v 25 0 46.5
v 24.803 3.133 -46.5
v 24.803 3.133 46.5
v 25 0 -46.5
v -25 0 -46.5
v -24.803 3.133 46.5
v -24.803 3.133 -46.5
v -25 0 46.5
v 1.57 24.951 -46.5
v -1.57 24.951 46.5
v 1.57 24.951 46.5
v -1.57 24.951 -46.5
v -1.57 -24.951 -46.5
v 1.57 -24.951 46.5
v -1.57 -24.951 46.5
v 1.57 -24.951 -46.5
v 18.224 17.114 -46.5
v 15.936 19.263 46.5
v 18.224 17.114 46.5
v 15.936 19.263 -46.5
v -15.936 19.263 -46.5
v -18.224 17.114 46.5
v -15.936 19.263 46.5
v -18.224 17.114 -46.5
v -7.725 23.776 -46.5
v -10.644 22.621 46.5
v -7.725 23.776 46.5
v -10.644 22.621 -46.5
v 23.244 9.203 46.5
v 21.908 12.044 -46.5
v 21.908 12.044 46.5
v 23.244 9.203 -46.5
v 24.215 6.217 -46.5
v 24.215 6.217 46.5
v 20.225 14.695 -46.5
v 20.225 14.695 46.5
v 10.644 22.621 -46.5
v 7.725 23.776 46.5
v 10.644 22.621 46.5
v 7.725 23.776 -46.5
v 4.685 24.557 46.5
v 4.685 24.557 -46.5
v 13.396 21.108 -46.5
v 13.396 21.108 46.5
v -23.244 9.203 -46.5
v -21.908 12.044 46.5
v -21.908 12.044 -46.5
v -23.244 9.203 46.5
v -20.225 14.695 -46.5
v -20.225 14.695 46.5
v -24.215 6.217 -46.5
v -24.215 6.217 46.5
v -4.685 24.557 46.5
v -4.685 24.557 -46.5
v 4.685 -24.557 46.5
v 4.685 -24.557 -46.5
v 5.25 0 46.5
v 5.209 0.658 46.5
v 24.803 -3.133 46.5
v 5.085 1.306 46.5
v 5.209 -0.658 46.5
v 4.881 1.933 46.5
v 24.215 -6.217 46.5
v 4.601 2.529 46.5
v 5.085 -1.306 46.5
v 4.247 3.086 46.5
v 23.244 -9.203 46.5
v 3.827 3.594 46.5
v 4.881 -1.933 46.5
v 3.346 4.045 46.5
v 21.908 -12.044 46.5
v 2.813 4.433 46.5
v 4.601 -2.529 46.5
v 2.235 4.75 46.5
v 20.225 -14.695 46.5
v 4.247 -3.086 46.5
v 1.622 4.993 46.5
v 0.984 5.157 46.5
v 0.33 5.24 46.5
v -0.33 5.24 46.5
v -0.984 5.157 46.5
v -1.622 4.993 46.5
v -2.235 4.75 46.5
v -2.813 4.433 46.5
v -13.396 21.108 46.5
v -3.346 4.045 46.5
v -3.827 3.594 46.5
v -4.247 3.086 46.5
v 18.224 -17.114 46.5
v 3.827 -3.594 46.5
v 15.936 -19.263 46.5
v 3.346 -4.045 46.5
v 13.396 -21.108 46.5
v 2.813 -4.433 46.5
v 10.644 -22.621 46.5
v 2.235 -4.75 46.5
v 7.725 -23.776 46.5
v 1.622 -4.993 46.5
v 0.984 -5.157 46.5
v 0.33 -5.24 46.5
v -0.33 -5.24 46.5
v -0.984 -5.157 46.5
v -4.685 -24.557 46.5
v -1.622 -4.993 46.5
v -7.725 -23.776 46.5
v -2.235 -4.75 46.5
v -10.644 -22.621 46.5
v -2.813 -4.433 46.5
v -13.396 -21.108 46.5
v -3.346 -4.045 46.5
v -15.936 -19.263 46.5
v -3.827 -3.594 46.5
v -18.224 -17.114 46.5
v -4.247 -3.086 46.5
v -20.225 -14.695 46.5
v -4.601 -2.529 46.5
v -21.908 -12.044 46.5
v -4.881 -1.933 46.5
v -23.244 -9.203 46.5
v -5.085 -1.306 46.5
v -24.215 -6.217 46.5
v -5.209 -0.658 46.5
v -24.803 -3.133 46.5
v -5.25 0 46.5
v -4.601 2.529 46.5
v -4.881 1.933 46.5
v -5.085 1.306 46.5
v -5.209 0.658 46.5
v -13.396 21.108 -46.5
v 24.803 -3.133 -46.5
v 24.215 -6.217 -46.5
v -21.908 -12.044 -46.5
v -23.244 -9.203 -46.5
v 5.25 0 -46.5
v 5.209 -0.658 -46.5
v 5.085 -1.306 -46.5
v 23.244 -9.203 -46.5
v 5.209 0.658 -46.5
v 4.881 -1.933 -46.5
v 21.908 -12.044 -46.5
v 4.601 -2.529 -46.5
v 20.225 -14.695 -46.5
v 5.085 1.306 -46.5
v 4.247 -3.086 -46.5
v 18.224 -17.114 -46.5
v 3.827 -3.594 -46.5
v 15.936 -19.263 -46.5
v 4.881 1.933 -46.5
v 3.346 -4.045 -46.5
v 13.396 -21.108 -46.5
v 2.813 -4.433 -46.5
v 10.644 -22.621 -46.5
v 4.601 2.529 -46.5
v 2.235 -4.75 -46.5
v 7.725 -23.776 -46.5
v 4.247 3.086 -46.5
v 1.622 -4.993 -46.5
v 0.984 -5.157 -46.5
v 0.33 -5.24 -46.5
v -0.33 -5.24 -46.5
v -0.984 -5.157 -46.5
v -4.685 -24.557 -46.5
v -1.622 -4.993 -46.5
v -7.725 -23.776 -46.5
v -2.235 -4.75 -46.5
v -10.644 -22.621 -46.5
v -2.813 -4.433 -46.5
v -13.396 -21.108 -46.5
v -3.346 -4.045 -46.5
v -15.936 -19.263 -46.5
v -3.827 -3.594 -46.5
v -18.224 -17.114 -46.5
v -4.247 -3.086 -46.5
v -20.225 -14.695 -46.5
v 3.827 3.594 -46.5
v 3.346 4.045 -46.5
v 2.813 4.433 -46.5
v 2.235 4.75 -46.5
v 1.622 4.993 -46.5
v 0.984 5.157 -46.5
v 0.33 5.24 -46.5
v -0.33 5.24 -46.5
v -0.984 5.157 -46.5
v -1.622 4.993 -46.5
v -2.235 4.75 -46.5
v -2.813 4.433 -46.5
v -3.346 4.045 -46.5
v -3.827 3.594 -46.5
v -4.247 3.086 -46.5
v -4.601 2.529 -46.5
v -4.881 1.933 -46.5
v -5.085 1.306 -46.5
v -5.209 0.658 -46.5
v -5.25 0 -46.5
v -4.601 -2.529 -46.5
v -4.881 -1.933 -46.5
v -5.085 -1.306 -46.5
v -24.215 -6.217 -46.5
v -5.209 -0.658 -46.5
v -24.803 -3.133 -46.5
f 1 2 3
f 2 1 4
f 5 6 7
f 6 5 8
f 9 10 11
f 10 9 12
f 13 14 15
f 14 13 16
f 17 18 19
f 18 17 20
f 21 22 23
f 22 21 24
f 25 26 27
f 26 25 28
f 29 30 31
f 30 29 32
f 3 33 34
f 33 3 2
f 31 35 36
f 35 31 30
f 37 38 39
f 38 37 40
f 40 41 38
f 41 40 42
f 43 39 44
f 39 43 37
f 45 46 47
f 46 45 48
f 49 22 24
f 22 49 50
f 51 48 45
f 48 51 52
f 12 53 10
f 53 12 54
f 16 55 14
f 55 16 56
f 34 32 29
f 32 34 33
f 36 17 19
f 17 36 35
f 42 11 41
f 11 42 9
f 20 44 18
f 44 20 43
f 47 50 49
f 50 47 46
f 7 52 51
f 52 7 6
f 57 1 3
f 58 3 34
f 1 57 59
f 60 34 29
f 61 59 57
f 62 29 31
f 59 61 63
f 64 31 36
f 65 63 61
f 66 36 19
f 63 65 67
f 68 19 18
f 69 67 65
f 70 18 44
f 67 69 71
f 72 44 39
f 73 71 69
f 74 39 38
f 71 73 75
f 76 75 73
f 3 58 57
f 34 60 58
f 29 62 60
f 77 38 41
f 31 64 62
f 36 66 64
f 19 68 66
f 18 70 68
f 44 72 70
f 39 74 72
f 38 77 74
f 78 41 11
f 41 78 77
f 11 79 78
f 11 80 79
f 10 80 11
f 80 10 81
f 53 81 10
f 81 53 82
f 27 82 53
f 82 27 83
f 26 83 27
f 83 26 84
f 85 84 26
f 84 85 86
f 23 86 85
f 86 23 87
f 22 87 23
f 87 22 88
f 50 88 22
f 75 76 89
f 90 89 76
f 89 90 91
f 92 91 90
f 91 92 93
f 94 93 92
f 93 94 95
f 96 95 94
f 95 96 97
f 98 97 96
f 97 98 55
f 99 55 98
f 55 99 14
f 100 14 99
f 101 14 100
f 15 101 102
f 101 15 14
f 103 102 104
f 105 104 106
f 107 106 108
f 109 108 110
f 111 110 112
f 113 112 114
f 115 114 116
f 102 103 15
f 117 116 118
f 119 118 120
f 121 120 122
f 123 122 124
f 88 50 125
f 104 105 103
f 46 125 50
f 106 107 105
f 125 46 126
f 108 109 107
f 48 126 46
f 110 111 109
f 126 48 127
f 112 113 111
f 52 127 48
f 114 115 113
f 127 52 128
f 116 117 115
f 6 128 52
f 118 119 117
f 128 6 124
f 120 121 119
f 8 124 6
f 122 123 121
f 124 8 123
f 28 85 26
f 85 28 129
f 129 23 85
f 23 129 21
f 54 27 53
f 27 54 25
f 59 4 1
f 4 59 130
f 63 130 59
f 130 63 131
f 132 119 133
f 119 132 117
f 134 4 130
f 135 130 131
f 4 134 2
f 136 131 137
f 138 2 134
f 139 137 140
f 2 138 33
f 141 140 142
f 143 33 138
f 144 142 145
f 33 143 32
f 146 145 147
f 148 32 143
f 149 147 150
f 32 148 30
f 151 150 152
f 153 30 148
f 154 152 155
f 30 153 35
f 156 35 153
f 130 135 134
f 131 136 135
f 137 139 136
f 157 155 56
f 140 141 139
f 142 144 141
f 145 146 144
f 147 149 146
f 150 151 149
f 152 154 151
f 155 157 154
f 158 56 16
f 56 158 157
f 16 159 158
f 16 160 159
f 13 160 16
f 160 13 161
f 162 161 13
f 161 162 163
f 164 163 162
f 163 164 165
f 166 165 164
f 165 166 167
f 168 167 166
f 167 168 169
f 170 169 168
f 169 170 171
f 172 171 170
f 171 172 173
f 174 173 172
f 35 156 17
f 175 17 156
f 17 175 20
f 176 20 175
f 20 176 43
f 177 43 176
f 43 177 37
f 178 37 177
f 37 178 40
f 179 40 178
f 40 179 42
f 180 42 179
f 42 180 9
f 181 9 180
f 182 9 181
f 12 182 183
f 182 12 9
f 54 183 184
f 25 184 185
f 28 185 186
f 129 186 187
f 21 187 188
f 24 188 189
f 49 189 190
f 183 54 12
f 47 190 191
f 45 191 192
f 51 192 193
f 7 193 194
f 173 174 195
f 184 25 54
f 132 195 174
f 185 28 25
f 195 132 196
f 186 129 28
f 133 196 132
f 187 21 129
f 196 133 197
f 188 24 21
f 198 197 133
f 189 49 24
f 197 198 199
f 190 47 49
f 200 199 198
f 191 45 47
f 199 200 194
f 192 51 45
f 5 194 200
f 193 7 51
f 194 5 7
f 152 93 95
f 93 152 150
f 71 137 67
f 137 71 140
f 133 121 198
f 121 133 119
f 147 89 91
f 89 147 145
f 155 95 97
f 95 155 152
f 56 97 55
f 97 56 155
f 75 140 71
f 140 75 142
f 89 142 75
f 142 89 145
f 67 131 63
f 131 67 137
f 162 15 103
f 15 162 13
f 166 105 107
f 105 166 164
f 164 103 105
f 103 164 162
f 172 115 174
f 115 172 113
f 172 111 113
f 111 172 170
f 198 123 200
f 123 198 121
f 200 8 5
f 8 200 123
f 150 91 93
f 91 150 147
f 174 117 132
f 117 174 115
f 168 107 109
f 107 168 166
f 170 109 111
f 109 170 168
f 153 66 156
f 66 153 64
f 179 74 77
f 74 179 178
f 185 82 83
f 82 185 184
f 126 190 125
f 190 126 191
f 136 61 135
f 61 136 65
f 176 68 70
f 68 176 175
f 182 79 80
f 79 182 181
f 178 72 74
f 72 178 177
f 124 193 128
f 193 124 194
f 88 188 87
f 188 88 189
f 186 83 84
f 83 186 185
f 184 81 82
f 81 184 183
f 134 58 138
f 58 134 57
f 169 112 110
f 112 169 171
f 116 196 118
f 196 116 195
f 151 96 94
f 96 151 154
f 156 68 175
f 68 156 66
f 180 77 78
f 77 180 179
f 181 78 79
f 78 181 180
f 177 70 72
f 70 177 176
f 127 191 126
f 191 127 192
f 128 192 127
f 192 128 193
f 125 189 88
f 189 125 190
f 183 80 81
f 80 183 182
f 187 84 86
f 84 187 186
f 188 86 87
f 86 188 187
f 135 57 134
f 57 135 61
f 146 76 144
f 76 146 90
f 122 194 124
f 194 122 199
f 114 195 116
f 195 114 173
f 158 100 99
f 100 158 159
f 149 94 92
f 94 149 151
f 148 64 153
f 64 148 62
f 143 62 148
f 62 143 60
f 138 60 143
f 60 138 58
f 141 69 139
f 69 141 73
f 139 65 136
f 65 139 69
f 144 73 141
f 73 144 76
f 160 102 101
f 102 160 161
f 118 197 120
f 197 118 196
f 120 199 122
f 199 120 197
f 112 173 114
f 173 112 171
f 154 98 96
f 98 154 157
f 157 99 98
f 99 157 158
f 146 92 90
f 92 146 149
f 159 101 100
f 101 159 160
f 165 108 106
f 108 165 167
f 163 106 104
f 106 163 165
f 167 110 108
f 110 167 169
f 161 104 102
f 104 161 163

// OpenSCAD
$fn = 50;


difference() {
	union() {
		translate(v = [0, 0, -46.5000000000]) {
			cylinder(h = 93, r = 25.0000000000);
		}
	}
	union() {
		translate(v = [0, 0, -100.0000000000]) {
			cylinder(h = 200, r = 5.2500000000);
		}
	}
}
